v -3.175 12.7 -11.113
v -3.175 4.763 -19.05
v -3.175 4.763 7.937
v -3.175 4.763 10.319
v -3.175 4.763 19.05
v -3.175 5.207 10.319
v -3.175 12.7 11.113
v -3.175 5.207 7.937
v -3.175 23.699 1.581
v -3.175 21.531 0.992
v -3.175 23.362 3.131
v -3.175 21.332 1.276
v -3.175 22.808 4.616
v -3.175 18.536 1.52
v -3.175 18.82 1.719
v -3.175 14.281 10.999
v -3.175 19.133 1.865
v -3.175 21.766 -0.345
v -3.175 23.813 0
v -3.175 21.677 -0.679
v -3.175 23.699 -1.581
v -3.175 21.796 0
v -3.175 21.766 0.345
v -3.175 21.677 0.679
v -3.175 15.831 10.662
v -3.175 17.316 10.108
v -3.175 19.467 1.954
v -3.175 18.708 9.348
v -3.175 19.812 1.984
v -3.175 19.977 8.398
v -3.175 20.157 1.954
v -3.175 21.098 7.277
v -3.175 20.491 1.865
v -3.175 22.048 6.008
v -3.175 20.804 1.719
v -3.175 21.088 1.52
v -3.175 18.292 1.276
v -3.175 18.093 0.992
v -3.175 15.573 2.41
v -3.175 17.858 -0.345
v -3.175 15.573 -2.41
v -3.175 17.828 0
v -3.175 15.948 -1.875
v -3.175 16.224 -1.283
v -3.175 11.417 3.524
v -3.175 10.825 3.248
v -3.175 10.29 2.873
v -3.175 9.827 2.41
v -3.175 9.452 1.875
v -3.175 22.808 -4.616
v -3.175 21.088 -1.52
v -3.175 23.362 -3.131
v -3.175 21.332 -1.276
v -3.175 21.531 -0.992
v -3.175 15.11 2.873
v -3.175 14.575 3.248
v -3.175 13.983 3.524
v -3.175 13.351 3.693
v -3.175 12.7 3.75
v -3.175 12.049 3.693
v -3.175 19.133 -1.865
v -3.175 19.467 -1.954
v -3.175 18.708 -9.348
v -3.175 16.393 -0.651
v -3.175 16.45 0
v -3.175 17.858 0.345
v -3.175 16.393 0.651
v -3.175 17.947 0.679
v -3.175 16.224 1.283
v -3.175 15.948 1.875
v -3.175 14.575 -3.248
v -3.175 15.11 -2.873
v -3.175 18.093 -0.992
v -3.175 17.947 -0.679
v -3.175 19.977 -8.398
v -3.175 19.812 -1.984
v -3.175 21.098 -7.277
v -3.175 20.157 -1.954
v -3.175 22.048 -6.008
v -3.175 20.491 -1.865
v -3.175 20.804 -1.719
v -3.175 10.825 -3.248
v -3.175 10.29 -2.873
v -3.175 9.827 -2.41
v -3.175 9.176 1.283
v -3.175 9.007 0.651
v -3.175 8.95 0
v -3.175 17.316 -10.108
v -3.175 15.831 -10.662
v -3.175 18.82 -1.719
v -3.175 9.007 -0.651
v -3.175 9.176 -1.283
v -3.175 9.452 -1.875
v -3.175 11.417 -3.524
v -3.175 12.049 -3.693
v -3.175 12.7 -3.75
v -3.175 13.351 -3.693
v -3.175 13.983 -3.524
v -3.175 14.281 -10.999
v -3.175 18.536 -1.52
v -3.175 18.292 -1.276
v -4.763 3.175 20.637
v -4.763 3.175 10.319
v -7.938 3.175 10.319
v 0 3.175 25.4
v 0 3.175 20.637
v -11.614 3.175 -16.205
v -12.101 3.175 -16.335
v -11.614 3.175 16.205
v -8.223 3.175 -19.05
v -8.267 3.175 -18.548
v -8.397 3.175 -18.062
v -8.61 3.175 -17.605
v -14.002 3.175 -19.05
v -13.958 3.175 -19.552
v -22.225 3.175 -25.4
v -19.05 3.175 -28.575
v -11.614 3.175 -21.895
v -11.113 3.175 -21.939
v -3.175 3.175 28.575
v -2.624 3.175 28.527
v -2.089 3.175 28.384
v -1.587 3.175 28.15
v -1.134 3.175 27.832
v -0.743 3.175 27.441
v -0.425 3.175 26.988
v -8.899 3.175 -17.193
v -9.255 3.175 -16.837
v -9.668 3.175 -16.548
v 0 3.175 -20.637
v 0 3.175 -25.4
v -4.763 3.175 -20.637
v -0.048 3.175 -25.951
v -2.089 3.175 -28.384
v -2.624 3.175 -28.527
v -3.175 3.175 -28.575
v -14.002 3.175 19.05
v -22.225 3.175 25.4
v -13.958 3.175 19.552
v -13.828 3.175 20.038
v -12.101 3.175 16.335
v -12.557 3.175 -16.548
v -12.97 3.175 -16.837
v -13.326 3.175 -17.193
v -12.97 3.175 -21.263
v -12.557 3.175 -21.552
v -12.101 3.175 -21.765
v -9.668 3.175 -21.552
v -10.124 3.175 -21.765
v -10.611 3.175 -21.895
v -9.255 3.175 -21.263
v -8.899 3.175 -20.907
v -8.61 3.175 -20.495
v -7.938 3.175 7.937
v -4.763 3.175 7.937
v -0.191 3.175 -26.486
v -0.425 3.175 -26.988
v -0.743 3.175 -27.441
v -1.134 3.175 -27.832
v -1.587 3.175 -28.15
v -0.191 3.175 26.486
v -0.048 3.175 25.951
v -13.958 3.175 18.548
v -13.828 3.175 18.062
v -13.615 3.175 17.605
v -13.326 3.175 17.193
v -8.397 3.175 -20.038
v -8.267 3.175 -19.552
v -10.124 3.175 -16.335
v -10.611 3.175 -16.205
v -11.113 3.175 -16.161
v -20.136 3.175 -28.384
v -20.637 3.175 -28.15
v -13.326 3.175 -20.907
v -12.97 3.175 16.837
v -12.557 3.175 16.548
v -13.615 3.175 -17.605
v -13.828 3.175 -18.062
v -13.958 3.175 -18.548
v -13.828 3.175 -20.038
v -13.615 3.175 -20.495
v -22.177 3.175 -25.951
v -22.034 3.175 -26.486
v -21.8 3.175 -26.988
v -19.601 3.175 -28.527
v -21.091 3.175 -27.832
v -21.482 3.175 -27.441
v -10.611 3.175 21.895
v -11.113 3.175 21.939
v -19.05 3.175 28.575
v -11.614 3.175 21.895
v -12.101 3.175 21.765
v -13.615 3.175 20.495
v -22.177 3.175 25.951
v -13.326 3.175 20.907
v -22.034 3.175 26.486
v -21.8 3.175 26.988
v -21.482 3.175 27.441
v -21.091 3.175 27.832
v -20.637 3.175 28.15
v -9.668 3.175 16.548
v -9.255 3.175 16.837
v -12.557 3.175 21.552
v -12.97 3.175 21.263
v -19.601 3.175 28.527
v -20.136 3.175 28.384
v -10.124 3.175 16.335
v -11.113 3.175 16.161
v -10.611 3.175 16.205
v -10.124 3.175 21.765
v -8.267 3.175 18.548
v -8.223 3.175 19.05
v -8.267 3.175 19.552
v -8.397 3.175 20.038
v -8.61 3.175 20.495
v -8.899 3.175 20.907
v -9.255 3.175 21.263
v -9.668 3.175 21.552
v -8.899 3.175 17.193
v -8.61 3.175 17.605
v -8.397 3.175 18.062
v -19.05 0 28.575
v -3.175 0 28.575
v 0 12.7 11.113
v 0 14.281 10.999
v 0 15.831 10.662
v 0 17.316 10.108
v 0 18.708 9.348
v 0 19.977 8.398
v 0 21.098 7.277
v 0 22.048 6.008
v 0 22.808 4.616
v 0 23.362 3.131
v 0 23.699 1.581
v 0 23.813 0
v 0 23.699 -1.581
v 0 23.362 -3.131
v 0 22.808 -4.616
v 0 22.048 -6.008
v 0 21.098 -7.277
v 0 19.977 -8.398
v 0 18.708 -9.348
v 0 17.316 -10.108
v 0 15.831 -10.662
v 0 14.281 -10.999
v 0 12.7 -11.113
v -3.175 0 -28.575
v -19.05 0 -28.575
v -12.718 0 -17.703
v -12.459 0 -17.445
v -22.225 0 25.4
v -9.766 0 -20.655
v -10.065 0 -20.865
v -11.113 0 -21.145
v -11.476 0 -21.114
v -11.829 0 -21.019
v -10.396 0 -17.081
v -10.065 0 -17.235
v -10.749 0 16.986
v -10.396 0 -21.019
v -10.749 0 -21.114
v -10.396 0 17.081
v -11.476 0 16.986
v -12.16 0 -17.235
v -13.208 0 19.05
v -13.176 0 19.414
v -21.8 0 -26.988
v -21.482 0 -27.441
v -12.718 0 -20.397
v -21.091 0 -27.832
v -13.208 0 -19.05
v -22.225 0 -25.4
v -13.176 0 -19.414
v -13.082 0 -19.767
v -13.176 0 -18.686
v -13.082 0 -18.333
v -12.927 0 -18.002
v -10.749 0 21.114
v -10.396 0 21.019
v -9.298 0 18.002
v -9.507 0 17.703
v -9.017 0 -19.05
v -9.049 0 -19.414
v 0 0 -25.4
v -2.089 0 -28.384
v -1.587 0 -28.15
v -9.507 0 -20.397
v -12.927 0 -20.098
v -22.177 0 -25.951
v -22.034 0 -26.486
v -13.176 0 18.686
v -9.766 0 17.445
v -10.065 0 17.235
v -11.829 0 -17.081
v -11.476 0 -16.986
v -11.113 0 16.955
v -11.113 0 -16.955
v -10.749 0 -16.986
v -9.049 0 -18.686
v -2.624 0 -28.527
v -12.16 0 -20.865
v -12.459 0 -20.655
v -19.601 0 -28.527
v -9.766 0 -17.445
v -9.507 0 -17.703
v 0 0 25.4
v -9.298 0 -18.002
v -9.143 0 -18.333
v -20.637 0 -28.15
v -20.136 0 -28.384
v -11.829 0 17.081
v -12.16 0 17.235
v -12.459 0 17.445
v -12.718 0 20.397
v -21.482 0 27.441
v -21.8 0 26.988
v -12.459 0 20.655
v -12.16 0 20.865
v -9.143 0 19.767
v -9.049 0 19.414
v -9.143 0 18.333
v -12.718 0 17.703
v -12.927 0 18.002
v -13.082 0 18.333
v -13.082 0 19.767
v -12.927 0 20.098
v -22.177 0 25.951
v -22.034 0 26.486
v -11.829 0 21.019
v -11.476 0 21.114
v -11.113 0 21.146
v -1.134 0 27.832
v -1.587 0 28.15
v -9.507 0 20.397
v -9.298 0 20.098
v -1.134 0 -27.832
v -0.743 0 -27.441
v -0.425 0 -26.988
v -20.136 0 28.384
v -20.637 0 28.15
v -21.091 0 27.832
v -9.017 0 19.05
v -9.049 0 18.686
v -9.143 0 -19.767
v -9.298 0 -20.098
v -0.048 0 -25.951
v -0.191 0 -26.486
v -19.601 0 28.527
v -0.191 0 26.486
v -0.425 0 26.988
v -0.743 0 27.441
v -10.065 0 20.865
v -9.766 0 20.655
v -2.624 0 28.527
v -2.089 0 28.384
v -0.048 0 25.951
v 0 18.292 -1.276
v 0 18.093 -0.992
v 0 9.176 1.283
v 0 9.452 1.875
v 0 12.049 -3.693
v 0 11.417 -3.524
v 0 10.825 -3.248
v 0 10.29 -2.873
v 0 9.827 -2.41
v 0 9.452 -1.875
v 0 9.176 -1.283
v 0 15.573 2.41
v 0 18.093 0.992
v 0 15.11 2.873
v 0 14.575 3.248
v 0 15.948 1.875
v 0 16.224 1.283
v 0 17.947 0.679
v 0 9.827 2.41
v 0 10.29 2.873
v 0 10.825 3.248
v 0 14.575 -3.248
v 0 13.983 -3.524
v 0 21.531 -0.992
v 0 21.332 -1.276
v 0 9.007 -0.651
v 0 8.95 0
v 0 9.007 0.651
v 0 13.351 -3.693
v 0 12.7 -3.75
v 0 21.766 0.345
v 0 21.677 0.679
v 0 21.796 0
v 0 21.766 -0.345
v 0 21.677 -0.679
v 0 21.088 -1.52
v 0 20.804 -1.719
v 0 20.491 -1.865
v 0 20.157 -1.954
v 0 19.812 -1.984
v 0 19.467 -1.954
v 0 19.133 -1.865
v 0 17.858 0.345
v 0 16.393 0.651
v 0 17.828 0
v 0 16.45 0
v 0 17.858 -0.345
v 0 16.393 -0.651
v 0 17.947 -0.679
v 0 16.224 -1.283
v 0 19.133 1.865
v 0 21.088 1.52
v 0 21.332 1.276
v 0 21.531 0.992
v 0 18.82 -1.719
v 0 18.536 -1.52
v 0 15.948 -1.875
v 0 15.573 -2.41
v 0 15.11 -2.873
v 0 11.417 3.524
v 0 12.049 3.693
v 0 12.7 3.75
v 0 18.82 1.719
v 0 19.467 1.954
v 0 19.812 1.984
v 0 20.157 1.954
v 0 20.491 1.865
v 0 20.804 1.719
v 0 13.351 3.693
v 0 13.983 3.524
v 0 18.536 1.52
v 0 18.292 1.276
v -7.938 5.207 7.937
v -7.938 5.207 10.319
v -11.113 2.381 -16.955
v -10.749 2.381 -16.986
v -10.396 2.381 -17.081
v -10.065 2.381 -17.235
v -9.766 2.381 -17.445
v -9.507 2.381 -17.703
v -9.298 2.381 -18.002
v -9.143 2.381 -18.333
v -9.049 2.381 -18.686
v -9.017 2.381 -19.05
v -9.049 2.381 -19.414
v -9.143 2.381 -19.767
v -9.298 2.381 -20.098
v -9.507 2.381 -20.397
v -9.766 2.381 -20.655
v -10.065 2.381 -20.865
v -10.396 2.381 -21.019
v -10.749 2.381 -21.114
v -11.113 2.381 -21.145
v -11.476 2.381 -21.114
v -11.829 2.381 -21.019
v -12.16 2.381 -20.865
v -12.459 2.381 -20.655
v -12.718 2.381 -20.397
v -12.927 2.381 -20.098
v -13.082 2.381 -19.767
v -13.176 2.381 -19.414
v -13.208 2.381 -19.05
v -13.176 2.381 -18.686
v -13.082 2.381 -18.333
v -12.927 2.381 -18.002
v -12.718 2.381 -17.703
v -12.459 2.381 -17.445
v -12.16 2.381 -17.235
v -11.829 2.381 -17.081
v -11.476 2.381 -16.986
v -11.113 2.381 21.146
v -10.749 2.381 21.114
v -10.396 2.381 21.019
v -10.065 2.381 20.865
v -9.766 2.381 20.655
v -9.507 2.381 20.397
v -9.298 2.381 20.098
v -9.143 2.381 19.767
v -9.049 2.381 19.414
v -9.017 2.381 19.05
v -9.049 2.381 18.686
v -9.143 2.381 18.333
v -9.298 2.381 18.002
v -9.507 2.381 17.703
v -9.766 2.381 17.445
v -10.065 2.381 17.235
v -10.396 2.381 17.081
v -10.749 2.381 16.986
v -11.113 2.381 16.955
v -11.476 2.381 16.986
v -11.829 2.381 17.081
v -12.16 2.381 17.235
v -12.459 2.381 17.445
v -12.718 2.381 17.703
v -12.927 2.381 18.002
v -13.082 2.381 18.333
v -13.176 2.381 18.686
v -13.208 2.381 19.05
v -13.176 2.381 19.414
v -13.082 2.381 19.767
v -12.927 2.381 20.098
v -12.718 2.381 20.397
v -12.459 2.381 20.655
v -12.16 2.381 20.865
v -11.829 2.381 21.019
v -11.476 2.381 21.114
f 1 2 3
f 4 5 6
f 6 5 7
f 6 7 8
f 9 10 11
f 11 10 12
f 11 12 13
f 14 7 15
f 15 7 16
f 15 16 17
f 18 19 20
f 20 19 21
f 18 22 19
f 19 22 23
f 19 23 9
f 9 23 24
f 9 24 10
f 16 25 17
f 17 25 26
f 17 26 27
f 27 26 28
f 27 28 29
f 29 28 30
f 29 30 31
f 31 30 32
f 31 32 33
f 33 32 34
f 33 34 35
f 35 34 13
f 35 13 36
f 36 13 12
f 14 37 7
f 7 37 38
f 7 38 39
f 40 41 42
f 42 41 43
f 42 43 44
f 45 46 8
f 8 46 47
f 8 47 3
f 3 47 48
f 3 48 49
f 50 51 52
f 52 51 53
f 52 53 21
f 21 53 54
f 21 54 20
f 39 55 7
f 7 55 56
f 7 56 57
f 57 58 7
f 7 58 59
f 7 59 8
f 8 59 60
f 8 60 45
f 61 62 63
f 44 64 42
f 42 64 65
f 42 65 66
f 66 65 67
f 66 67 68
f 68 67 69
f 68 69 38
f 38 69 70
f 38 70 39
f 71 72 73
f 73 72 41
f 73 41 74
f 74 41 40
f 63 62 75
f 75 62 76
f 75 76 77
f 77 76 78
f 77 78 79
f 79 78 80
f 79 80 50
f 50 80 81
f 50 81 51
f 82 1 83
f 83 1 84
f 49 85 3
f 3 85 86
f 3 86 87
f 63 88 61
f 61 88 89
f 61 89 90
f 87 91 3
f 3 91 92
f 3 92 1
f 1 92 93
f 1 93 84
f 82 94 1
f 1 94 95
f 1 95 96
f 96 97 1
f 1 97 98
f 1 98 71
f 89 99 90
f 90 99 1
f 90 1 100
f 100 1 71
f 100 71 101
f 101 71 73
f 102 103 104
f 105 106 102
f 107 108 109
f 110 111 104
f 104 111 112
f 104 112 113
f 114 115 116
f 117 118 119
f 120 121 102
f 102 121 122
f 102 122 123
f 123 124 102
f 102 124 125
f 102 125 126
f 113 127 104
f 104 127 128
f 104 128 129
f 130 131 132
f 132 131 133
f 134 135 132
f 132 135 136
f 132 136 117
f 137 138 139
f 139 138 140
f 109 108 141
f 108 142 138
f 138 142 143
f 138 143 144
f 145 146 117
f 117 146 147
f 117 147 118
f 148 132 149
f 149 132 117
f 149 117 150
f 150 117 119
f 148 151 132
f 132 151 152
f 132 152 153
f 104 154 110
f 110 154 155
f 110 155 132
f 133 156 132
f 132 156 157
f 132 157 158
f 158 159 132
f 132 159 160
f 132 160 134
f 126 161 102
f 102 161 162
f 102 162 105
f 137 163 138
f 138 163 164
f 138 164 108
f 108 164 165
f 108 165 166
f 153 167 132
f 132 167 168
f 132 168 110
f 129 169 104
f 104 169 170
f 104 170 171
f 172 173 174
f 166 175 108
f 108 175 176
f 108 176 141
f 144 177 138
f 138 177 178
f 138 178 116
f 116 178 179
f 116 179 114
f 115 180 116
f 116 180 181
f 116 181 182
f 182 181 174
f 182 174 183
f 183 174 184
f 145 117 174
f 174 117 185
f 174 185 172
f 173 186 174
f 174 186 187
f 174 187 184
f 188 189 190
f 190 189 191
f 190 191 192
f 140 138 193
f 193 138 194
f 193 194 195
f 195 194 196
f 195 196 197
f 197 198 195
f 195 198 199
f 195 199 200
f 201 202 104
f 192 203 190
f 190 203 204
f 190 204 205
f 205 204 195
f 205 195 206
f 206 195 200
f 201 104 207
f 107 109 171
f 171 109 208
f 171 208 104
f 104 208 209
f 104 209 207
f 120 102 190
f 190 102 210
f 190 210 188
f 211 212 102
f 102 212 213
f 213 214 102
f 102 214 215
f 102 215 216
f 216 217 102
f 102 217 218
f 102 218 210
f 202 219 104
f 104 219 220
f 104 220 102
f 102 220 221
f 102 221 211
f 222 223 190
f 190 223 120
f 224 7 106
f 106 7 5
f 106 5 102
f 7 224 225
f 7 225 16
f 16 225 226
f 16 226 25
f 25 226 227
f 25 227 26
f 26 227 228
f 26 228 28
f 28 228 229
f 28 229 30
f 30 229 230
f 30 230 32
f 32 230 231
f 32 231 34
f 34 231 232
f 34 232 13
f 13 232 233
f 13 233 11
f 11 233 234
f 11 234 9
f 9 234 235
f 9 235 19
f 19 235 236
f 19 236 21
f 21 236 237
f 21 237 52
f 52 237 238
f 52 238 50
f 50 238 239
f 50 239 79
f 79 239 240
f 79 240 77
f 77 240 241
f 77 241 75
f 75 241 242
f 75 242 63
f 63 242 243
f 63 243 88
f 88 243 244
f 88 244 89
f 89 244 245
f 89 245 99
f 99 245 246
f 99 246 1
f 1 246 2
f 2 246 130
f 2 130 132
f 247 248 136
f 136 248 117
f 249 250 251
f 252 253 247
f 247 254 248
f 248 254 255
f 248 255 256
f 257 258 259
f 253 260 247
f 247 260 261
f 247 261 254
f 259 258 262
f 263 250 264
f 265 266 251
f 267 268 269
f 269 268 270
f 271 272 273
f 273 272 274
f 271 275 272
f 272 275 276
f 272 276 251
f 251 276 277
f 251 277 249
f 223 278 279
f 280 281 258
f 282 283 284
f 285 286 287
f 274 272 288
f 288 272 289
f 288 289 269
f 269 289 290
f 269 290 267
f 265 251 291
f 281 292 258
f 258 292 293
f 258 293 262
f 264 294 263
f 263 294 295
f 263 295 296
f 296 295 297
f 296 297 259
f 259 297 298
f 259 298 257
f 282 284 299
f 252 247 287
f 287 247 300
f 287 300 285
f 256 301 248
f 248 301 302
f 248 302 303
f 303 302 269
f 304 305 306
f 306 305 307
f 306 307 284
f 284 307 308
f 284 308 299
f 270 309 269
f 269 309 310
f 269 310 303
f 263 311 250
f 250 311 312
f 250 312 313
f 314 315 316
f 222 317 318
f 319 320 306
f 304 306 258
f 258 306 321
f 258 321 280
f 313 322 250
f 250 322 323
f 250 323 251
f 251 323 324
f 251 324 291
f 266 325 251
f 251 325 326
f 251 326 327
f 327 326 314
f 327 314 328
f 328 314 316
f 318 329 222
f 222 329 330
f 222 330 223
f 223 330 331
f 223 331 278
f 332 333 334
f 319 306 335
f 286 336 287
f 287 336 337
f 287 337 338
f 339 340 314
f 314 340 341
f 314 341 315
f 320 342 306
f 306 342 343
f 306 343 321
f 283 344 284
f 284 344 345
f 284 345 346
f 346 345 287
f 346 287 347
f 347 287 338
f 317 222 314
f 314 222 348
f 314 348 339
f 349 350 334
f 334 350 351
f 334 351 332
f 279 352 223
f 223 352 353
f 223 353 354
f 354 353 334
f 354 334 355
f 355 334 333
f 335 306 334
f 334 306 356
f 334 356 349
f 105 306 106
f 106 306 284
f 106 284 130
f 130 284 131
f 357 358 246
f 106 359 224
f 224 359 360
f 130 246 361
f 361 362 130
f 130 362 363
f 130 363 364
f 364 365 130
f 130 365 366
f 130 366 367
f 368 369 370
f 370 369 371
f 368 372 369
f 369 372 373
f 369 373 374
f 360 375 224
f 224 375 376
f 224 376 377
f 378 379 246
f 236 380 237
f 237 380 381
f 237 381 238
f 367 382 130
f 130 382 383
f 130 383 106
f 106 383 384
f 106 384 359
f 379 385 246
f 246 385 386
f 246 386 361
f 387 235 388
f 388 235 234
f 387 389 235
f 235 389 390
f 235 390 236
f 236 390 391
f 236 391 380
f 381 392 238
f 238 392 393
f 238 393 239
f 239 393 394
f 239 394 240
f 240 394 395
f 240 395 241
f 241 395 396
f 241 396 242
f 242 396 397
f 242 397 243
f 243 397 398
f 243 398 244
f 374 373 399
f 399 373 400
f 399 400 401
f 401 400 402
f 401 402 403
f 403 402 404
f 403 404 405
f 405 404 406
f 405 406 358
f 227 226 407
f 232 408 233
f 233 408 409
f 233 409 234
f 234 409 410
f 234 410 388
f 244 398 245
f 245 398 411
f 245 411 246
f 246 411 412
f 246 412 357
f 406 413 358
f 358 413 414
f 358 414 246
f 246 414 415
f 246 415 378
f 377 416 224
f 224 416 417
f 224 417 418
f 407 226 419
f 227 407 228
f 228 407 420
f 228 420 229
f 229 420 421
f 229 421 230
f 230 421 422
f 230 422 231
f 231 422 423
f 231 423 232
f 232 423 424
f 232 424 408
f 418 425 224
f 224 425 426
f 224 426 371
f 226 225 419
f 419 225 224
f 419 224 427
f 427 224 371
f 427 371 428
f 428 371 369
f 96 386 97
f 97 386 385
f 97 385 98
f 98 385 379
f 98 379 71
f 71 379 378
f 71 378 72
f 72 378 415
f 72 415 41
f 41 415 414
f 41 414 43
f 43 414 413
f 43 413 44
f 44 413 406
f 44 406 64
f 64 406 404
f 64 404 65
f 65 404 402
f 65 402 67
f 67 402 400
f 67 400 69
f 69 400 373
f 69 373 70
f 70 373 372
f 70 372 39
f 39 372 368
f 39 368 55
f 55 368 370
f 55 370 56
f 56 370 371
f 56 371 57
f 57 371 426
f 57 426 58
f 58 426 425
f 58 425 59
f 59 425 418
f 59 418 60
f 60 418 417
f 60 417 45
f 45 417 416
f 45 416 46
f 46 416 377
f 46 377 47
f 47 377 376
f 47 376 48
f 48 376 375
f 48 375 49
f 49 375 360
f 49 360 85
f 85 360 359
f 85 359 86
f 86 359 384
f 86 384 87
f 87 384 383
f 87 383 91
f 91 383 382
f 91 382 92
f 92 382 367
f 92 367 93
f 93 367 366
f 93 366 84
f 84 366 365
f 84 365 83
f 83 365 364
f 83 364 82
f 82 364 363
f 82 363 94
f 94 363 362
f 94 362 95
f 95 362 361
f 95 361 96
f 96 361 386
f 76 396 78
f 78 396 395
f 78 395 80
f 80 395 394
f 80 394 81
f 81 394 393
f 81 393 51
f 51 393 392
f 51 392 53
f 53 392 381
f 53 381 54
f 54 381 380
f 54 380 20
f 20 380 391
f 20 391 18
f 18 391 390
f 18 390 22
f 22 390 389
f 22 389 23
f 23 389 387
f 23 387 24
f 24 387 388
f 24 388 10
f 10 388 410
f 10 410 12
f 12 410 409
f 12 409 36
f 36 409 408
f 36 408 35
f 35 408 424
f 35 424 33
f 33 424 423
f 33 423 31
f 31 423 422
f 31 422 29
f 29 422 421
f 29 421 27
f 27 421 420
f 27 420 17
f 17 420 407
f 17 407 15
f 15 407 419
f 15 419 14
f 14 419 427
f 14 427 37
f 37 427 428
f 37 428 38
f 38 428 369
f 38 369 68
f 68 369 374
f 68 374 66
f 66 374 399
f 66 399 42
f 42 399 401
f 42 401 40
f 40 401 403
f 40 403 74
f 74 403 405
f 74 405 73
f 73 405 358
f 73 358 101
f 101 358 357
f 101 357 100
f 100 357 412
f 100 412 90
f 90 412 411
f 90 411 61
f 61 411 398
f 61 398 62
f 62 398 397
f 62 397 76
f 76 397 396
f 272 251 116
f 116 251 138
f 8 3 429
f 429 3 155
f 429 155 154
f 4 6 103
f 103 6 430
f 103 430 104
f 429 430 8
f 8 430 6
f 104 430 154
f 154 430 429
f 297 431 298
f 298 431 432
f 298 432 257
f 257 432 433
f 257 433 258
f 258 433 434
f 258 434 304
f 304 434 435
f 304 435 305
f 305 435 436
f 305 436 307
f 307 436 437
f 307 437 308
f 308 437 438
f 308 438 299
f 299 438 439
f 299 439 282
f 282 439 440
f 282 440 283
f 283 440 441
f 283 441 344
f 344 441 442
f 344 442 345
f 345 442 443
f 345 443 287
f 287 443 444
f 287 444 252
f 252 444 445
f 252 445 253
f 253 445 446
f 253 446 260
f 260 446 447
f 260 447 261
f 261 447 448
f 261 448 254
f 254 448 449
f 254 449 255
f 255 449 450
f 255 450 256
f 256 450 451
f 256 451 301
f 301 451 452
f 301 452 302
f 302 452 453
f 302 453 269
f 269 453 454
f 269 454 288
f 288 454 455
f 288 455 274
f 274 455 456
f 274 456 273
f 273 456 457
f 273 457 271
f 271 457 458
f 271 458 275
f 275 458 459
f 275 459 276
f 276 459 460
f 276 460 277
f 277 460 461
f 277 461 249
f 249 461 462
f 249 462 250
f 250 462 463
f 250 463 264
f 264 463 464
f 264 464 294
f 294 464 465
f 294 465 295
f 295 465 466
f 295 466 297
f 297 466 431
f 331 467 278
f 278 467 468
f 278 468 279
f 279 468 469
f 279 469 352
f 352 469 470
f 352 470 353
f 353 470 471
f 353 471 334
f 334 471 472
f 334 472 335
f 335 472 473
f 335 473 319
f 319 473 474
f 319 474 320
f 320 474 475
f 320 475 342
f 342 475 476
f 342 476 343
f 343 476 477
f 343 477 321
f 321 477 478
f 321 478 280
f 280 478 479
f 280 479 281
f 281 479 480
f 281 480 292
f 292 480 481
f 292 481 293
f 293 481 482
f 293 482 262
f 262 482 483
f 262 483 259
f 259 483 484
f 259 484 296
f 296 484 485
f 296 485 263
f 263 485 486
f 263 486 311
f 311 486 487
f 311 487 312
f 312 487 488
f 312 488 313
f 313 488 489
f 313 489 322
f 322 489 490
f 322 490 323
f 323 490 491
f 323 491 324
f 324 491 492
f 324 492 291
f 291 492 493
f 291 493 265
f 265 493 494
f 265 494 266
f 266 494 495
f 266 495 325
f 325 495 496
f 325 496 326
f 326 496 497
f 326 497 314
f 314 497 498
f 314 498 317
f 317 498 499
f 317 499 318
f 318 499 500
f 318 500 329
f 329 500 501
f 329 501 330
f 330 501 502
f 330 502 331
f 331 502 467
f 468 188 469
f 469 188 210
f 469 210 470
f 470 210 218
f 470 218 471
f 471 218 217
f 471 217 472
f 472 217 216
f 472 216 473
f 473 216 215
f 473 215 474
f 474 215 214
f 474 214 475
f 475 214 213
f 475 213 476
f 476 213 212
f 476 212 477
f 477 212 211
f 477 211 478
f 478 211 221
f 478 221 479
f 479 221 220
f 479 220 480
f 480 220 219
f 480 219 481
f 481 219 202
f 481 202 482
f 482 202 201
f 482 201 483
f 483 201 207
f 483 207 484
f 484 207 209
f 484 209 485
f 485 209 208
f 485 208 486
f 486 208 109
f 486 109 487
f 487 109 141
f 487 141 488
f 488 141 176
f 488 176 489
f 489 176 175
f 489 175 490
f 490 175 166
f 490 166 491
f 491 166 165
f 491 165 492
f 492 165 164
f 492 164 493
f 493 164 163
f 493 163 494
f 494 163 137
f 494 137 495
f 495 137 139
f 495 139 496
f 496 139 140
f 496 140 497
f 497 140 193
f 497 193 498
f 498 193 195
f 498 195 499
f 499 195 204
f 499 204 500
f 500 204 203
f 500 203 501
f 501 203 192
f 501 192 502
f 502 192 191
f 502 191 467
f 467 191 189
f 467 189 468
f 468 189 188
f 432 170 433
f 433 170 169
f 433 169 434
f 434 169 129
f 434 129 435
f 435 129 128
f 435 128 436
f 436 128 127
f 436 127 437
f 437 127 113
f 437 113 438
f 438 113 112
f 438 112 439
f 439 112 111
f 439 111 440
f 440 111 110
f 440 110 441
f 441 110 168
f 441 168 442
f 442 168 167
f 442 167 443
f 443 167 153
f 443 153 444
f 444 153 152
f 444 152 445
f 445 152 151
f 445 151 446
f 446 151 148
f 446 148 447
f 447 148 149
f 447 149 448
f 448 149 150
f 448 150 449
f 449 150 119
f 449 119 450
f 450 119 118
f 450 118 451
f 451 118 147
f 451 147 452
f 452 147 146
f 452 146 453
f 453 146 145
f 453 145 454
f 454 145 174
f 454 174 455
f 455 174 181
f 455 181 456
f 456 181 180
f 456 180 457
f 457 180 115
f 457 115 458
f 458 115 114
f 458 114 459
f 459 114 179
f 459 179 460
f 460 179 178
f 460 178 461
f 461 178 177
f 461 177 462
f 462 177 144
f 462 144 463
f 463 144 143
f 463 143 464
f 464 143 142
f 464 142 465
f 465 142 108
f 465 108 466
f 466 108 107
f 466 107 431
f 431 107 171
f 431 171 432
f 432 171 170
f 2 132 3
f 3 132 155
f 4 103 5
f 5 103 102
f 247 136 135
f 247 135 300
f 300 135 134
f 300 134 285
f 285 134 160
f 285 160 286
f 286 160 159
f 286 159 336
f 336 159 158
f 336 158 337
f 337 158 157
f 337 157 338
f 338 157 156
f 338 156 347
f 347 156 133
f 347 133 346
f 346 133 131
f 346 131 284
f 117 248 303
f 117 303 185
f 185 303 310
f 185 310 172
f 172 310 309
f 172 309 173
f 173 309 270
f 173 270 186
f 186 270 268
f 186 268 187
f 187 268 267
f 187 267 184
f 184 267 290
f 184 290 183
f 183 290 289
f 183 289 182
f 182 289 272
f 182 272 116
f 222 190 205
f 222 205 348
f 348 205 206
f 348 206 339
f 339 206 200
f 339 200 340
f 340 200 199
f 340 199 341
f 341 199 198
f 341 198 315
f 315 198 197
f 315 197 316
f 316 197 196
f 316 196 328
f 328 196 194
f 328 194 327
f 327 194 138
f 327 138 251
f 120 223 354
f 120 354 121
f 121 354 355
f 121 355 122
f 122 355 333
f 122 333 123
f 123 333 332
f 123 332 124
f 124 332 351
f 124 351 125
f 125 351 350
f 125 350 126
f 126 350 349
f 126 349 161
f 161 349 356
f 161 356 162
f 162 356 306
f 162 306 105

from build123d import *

# Parameters (mm, degrees)
SKETCH1_R           = 3.75
BOSS_EXTRUDE1_DEPTH = 3.175
SKETCH2_R           = 1.984375
CUT_EXTRUDE1_DEPTH  = 4.175
SKETCH3_W           = 57.15
SKETCH3_H           = 3.175
BOSS_EXTRUDE2_DEPTH = 19.05
SKETCH4_W           = 2.38125
SKETCH4_H           = 2.032
BOSS_EXTRUDE3_DEPTH = 4.7625
SKETCH5_R           = 2.0955
CUT_EXTRUDE2_DEPTH  = 4.175
CHAMFER1_SIZE       = 0.79375
CHAMFER3_SIZE       = 1.5875
FILLET1_R           = 3.175


with BuildPart() as part:
    # Sketch1 → Boss-Extrude1 (new body)
    with BuildSketch(Plane(origin=(0, 0, 0), x_dir=(0, 0, -1), z_dir=(1, 0, 0))):
        with BuildLine():
            Line((-28.575, 0), (28.575, 0))
            Line((28.575, 0), (28.575, 3.175))
            Line((28.575, 3.175), (20.6375, 3.175))
            Line((20.6375, 3.175), (11.1125, 12.7))
            ThreePointArc((11.1125, 12.7), (0, 23.8125), (-11.1125, 12.7))
            Line((-11.1125, 12.7), (-20.6375, 3.175))
            Line((-20.6375, 3.175), (-28.575, 3.175))
            Line((-28.575, 3.175), (-28.575, 0))
        make_face()
        with Locations((0, 12.7)):
            Circle(SKETCH1_R, mode=Mode.SUBTRACT)
    extrude(amount=-BOSS_EXTRUDE1_DEPTH)

    # Sketch2 → Cut-Extrude1 (cut, through all)
    with BuildSketch(Plane(origin=(0, 0, 0), x_dir=(0, 0, -1), z_dir=(1, 0, 0))):
        with Locations((0, 19.812)):
            Circle(SKETCH2_R)
    extrude(amount=-CUT_EXTRUDE1_DEPTH, mode=Mode.SUBTRACT)

    # Sketch3 → Boss-Extrude2 (add)
    with BuildSketch(Plane.ZY.offset(3.175)):
        with Locations((0, 1.5875)):
            Rectangle(SKETCH3_W, SKETCH3_H)
    extrude(amount=BOSS_EXTRUDE2_DEPTH)

    # Sketch4 → Boss-Extrude3 (add)
    with BuildSketch(Plane.ZY.offset(3.175)):
        with Locations((9.128125, 4.191)):
            Rectangle(SKETCH4_W, SKETCH4_H)
    extrude(amount=BOSS_EXTRUDE3_DEPTH)

    # Sketch5 → Cut-Extrude2 (cut, through all)
    with BuildSketch(Plane(origin=(0, 3.175, 0), x_dir=(1, 0, 0), z_dir=(0, 1, 0))):
        with Locations((-11.1125, -19.05)):
            Circle(SKETCH5_R)
        with Locations((-11.1125, 19.05)):
            Circle(SKETCH5_R)
    extrude(amount=-CUT_EXTRUDE2_DEPTH, mode=Mode.SUBTRACT)

    # Chamfer1
    chamfer1_edges = [part.edges().sort_by_distance(p)[0] for p in [
        (-13.208, 3.175, 19.05),
        (-13.208, 3.175, -19.05),
    ]]
    chamfer(chamfer1_edges, length=CHAMFER1_SIZE)

    # Chamfer3
    chamfer3_edges = [part.edges().sort_by_distance(p)[0] for p in [
        (-3.175, 3.175, 15.478125),
        (-3.175, 3.175, -6.35),
    ]]
    chamfer(chamfer3_edges, length=CHAMFER3_SIZE)

    # Fillet1
    fillet1_edges = [part.edges().sort_by_distance(p)[0] for p in [
        (0, 1.5875, -28.575),
        (0, 1.5875, 28.575),
        (-22.225, 1.5875, -28.575),
        (-22.225, 1.5875, 28.575),
    ]]
    fillet(fillet1_edges, radius=FILLET1_R)


solid = part.part
